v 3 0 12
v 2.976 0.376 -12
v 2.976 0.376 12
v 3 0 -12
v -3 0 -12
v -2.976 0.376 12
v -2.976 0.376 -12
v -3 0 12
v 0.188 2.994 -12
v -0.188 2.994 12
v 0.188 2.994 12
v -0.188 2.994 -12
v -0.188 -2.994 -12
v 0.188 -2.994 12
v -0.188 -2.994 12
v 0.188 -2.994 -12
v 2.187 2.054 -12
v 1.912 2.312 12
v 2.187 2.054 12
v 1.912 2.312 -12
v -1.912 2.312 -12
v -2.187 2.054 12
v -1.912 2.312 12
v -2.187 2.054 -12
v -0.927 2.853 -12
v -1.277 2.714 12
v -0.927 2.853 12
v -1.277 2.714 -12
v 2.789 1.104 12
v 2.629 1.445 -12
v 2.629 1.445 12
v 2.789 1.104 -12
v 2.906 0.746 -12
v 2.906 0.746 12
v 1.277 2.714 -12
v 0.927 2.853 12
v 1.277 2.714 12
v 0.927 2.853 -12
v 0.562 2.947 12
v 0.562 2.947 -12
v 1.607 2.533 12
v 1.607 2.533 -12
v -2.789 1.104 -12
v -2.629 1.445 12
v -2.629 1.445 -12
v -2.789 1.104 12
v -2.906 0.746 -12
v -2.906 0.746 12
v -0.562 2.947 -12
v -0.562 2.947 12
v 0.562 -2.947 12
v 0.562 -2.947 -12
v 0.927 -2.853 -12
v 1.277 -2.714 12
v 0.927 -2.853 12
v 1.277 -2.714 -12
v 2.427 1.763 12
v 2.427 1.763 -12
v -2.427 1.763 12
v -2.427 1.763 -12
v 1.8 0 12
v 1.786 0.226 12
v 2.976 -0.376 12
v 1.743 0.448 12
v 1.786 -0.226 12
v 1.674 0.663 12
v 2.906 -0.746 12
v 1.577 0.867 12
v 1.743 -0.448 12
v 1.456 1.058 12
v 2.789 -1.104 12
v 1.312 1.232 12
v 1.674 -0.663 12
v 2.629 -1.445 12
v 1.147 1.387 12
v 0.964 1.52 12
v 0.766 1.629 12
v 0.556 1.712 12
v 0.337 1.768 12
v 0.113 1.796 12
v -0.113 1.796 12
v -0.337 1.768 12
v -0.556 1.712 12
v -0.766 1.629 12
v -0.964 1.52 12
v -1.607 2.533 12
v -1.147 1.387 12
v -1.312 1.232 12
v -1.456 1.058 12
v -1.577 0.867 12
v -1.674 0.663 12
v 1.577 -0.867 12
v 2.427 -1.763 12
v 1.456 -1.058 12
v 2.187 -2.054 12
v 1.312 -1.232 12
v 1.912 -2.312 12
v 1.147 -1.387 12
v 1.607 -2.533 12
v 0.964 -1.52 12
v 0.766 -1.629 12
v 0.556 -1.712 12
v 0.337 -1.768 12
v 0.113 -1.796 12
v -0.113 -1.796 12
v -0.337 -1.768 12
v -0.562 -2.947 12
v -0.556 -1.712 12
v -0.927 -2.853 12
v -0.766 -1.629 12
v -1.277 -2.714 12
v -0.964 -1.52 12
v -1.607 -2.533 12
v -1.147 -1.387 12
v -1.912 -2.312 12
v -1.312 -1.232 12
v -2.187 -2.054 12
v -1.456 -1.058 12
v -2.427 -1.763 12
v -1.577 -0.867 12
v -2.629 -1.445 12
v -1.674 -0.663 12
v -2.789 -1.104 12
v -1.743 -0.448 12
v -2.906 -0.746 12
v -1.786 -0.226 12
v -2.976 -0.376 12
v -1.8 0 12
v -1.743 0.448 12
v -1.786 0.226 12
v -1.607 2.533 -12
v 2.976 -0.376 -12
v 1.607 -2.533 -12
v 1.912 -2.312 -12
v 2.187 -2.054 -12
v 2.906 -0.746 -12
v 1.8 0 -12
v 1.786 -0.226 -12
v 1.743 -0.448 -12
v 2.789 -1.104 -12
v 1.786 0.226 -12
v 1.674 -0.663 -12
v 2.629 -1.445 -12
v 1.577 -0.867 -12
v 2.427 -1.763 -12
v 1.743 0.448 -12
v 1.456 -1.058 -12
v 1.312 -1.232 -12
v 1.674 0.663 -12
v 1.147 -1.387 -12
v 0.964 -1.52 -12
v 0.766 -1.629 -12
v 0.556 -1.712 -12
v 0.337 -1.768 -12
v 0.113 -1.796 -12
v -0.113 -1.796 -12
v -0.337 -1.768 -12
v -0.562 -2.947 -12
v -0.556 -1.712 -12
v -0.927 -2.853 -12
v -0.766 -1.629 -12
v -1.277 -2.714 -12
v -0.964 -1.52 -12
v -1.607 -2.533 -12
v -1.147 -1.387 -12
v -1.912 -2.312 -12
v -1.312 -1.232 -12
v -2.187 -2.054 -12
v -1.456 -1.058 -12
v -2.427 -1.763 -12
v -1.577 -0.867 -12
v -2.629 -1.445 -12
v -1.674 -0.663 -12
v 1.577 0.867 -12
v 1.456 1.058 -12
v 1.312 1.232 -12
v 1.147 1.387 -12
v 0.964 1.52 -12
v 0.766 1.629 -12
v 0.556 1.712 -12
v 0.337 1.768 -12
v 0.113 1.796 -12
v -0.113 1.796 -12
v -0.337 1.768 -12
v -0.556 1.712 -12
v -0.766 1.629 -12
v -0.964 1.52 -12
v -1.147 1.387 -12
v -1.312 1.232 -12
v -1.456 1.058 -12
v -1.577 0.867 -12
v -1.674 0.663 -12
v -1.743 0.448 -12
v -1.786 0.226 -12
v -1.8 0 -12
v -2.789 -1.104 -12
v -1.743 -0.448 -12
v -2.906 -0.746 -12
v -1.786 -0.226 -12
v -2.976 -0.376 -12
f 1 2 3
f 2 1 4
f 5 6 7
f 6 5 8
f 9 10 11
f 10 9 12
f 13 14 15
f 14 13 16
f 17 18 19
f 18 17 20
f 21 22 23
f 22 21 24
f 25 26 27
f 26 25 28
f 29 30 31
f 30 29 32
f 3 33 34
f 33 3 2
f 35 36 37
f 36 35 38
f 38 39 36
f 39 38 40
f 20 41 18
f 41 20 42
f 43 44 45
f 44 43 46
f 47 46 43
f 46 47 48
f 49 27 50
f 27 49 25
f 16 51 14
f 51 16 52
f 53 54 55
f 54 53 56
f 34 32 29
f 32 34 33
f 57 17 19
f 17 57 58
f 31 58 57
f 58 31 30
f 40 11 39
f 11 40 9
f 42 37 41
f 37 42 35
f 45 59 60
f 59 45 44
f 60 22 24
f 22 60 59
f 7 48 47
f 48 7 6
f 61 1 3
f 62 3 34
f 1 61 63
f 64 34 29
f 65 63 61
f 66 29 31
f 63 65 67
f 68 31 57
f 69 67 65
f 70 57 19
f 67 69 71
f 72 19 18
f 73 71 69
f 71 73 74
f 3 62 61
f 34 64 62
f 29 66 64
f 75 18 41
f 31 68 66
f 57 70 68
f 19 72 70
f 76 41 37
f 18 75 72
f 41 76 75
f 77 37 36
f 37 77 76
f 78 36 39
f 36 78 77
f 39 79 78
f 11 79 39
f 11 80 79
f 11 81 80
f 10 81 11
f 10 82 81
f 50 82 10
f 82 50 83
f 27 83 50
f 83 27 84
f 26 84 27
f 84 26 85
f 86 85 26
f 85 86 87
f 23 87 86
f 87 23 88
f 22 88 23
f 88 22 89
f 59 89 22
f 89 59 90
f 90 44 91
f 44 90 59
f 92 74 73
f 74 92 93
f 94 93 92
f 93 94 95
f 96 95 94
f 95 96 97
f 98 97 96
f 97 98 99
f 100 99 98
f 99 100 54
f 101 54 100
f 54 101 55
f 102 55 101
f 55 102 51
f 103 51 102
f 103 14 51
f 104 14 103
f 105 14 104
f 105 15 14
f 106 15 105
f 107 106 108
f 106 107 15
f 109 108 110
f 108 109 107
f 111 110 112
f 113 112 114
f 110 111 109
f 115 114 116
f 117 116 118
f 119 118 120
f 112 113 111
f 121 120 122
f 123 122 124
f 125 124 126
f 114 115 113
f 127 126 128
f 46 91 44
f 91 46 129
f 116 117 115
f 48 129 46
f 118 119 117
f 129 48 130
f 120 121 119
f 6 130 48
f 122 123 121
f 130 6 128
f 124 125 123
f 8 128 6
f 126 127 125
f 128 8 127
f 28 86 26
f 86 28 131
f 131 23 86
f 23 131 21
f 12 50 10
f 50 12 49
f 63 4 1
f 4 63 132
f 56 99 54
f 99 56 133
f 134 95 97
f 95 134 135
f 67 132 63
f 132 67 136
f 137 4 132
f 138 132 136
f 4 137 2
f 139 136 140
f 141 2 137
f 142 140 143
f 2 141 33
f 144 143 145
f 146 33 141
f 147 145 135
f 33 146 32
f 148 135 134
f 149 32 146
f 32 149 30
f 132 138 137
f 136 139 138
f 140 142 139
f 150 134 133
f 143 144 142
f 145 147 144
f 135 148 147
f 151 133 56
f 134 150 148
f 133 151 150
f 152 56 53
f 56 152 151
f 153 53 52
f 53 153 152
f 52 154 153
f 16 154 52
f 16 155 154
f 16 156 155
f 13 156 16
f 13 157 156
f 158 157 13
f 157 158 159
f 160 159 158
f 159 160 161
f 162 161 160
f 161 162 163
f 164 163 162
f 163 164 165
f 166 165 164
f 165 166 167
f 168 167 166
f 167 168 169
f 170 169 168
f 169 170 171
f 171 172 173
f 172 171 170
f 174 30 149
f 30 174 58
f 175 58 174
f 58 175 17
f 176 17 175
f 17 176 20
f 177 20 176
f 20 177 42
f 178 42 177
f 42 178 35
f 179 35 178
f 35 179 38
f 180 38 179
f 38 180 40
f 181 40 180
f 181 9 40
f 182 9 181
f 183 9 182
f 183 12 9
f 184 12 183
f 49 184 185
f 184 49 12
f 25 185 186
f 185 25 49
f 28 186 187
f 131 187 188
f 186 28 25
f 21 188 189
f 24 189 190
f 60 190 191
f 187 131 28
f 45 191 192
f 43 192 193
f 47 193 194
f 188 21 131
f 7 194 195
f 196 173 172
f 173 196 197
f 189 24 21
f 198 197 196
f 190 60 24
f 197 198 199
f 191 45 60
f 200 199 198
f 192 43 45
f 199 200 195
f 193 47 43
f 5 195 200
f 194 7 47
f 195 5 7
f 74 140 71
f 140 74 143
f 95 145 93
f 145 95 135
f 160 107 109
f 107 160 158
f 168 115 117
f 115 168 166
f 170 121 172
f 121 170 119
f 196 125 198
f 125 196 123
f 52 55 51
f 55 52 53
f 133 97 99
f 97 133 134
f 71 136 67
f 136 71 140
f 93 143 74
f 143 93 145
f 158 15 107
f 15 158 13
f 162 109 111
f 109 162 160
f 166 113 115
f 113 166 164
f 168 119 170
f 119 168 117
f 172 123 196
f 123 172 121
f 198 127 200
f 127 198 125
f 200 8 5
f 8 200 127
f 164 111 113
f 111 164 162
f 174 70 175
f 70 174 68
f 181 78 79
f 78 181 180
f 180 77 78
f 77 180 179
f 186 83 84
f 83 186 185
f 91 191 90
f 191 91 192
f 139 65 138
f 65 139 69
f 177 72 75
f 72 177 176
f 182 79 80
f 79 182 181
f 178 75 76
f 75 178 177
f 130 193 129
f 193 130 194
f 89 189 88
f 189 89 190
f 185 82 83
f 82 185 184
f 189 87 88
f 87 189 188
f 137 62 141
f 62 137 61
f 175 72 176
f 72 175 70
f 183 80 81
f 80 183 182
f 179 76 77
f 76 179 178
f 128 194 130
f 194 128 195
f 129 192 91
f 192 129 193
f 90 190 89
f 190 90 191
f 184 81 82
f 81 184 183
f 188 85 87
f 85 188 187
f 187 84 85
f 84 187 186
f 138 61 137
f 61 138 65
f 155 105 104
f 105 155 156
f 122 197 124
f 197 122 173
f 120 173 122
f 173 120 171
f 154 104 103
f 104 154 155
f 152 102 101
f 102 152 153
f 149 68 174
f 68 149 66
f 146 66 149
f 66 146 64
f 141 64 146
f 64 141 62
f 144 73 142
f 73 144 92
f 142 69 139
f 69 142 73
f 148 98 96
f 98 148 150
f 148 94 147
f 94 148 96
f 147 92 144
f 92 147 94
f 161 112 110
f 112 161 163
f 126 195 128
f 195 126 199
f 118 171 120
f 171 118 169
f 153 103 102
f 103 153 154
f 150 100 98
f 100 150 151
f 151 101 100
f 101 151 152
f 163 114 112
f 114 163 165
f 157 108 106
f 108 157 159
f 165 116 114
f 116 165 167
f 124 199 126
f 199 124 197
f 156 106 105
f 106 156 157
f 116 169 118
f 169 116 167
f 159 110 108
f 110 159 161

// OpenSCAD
$fn = 50;


difference() {
	union() {
		translate(v = [0, 0, -12.0000000000]) {
			cylinder(h = 24, r = 3.0000000000);
		}
	}
	union() {
		translate(v = [0, 0, -100.0000000000]) {
			cylinder(h = 200, r = 1.8000000000);
		}
	}
}
